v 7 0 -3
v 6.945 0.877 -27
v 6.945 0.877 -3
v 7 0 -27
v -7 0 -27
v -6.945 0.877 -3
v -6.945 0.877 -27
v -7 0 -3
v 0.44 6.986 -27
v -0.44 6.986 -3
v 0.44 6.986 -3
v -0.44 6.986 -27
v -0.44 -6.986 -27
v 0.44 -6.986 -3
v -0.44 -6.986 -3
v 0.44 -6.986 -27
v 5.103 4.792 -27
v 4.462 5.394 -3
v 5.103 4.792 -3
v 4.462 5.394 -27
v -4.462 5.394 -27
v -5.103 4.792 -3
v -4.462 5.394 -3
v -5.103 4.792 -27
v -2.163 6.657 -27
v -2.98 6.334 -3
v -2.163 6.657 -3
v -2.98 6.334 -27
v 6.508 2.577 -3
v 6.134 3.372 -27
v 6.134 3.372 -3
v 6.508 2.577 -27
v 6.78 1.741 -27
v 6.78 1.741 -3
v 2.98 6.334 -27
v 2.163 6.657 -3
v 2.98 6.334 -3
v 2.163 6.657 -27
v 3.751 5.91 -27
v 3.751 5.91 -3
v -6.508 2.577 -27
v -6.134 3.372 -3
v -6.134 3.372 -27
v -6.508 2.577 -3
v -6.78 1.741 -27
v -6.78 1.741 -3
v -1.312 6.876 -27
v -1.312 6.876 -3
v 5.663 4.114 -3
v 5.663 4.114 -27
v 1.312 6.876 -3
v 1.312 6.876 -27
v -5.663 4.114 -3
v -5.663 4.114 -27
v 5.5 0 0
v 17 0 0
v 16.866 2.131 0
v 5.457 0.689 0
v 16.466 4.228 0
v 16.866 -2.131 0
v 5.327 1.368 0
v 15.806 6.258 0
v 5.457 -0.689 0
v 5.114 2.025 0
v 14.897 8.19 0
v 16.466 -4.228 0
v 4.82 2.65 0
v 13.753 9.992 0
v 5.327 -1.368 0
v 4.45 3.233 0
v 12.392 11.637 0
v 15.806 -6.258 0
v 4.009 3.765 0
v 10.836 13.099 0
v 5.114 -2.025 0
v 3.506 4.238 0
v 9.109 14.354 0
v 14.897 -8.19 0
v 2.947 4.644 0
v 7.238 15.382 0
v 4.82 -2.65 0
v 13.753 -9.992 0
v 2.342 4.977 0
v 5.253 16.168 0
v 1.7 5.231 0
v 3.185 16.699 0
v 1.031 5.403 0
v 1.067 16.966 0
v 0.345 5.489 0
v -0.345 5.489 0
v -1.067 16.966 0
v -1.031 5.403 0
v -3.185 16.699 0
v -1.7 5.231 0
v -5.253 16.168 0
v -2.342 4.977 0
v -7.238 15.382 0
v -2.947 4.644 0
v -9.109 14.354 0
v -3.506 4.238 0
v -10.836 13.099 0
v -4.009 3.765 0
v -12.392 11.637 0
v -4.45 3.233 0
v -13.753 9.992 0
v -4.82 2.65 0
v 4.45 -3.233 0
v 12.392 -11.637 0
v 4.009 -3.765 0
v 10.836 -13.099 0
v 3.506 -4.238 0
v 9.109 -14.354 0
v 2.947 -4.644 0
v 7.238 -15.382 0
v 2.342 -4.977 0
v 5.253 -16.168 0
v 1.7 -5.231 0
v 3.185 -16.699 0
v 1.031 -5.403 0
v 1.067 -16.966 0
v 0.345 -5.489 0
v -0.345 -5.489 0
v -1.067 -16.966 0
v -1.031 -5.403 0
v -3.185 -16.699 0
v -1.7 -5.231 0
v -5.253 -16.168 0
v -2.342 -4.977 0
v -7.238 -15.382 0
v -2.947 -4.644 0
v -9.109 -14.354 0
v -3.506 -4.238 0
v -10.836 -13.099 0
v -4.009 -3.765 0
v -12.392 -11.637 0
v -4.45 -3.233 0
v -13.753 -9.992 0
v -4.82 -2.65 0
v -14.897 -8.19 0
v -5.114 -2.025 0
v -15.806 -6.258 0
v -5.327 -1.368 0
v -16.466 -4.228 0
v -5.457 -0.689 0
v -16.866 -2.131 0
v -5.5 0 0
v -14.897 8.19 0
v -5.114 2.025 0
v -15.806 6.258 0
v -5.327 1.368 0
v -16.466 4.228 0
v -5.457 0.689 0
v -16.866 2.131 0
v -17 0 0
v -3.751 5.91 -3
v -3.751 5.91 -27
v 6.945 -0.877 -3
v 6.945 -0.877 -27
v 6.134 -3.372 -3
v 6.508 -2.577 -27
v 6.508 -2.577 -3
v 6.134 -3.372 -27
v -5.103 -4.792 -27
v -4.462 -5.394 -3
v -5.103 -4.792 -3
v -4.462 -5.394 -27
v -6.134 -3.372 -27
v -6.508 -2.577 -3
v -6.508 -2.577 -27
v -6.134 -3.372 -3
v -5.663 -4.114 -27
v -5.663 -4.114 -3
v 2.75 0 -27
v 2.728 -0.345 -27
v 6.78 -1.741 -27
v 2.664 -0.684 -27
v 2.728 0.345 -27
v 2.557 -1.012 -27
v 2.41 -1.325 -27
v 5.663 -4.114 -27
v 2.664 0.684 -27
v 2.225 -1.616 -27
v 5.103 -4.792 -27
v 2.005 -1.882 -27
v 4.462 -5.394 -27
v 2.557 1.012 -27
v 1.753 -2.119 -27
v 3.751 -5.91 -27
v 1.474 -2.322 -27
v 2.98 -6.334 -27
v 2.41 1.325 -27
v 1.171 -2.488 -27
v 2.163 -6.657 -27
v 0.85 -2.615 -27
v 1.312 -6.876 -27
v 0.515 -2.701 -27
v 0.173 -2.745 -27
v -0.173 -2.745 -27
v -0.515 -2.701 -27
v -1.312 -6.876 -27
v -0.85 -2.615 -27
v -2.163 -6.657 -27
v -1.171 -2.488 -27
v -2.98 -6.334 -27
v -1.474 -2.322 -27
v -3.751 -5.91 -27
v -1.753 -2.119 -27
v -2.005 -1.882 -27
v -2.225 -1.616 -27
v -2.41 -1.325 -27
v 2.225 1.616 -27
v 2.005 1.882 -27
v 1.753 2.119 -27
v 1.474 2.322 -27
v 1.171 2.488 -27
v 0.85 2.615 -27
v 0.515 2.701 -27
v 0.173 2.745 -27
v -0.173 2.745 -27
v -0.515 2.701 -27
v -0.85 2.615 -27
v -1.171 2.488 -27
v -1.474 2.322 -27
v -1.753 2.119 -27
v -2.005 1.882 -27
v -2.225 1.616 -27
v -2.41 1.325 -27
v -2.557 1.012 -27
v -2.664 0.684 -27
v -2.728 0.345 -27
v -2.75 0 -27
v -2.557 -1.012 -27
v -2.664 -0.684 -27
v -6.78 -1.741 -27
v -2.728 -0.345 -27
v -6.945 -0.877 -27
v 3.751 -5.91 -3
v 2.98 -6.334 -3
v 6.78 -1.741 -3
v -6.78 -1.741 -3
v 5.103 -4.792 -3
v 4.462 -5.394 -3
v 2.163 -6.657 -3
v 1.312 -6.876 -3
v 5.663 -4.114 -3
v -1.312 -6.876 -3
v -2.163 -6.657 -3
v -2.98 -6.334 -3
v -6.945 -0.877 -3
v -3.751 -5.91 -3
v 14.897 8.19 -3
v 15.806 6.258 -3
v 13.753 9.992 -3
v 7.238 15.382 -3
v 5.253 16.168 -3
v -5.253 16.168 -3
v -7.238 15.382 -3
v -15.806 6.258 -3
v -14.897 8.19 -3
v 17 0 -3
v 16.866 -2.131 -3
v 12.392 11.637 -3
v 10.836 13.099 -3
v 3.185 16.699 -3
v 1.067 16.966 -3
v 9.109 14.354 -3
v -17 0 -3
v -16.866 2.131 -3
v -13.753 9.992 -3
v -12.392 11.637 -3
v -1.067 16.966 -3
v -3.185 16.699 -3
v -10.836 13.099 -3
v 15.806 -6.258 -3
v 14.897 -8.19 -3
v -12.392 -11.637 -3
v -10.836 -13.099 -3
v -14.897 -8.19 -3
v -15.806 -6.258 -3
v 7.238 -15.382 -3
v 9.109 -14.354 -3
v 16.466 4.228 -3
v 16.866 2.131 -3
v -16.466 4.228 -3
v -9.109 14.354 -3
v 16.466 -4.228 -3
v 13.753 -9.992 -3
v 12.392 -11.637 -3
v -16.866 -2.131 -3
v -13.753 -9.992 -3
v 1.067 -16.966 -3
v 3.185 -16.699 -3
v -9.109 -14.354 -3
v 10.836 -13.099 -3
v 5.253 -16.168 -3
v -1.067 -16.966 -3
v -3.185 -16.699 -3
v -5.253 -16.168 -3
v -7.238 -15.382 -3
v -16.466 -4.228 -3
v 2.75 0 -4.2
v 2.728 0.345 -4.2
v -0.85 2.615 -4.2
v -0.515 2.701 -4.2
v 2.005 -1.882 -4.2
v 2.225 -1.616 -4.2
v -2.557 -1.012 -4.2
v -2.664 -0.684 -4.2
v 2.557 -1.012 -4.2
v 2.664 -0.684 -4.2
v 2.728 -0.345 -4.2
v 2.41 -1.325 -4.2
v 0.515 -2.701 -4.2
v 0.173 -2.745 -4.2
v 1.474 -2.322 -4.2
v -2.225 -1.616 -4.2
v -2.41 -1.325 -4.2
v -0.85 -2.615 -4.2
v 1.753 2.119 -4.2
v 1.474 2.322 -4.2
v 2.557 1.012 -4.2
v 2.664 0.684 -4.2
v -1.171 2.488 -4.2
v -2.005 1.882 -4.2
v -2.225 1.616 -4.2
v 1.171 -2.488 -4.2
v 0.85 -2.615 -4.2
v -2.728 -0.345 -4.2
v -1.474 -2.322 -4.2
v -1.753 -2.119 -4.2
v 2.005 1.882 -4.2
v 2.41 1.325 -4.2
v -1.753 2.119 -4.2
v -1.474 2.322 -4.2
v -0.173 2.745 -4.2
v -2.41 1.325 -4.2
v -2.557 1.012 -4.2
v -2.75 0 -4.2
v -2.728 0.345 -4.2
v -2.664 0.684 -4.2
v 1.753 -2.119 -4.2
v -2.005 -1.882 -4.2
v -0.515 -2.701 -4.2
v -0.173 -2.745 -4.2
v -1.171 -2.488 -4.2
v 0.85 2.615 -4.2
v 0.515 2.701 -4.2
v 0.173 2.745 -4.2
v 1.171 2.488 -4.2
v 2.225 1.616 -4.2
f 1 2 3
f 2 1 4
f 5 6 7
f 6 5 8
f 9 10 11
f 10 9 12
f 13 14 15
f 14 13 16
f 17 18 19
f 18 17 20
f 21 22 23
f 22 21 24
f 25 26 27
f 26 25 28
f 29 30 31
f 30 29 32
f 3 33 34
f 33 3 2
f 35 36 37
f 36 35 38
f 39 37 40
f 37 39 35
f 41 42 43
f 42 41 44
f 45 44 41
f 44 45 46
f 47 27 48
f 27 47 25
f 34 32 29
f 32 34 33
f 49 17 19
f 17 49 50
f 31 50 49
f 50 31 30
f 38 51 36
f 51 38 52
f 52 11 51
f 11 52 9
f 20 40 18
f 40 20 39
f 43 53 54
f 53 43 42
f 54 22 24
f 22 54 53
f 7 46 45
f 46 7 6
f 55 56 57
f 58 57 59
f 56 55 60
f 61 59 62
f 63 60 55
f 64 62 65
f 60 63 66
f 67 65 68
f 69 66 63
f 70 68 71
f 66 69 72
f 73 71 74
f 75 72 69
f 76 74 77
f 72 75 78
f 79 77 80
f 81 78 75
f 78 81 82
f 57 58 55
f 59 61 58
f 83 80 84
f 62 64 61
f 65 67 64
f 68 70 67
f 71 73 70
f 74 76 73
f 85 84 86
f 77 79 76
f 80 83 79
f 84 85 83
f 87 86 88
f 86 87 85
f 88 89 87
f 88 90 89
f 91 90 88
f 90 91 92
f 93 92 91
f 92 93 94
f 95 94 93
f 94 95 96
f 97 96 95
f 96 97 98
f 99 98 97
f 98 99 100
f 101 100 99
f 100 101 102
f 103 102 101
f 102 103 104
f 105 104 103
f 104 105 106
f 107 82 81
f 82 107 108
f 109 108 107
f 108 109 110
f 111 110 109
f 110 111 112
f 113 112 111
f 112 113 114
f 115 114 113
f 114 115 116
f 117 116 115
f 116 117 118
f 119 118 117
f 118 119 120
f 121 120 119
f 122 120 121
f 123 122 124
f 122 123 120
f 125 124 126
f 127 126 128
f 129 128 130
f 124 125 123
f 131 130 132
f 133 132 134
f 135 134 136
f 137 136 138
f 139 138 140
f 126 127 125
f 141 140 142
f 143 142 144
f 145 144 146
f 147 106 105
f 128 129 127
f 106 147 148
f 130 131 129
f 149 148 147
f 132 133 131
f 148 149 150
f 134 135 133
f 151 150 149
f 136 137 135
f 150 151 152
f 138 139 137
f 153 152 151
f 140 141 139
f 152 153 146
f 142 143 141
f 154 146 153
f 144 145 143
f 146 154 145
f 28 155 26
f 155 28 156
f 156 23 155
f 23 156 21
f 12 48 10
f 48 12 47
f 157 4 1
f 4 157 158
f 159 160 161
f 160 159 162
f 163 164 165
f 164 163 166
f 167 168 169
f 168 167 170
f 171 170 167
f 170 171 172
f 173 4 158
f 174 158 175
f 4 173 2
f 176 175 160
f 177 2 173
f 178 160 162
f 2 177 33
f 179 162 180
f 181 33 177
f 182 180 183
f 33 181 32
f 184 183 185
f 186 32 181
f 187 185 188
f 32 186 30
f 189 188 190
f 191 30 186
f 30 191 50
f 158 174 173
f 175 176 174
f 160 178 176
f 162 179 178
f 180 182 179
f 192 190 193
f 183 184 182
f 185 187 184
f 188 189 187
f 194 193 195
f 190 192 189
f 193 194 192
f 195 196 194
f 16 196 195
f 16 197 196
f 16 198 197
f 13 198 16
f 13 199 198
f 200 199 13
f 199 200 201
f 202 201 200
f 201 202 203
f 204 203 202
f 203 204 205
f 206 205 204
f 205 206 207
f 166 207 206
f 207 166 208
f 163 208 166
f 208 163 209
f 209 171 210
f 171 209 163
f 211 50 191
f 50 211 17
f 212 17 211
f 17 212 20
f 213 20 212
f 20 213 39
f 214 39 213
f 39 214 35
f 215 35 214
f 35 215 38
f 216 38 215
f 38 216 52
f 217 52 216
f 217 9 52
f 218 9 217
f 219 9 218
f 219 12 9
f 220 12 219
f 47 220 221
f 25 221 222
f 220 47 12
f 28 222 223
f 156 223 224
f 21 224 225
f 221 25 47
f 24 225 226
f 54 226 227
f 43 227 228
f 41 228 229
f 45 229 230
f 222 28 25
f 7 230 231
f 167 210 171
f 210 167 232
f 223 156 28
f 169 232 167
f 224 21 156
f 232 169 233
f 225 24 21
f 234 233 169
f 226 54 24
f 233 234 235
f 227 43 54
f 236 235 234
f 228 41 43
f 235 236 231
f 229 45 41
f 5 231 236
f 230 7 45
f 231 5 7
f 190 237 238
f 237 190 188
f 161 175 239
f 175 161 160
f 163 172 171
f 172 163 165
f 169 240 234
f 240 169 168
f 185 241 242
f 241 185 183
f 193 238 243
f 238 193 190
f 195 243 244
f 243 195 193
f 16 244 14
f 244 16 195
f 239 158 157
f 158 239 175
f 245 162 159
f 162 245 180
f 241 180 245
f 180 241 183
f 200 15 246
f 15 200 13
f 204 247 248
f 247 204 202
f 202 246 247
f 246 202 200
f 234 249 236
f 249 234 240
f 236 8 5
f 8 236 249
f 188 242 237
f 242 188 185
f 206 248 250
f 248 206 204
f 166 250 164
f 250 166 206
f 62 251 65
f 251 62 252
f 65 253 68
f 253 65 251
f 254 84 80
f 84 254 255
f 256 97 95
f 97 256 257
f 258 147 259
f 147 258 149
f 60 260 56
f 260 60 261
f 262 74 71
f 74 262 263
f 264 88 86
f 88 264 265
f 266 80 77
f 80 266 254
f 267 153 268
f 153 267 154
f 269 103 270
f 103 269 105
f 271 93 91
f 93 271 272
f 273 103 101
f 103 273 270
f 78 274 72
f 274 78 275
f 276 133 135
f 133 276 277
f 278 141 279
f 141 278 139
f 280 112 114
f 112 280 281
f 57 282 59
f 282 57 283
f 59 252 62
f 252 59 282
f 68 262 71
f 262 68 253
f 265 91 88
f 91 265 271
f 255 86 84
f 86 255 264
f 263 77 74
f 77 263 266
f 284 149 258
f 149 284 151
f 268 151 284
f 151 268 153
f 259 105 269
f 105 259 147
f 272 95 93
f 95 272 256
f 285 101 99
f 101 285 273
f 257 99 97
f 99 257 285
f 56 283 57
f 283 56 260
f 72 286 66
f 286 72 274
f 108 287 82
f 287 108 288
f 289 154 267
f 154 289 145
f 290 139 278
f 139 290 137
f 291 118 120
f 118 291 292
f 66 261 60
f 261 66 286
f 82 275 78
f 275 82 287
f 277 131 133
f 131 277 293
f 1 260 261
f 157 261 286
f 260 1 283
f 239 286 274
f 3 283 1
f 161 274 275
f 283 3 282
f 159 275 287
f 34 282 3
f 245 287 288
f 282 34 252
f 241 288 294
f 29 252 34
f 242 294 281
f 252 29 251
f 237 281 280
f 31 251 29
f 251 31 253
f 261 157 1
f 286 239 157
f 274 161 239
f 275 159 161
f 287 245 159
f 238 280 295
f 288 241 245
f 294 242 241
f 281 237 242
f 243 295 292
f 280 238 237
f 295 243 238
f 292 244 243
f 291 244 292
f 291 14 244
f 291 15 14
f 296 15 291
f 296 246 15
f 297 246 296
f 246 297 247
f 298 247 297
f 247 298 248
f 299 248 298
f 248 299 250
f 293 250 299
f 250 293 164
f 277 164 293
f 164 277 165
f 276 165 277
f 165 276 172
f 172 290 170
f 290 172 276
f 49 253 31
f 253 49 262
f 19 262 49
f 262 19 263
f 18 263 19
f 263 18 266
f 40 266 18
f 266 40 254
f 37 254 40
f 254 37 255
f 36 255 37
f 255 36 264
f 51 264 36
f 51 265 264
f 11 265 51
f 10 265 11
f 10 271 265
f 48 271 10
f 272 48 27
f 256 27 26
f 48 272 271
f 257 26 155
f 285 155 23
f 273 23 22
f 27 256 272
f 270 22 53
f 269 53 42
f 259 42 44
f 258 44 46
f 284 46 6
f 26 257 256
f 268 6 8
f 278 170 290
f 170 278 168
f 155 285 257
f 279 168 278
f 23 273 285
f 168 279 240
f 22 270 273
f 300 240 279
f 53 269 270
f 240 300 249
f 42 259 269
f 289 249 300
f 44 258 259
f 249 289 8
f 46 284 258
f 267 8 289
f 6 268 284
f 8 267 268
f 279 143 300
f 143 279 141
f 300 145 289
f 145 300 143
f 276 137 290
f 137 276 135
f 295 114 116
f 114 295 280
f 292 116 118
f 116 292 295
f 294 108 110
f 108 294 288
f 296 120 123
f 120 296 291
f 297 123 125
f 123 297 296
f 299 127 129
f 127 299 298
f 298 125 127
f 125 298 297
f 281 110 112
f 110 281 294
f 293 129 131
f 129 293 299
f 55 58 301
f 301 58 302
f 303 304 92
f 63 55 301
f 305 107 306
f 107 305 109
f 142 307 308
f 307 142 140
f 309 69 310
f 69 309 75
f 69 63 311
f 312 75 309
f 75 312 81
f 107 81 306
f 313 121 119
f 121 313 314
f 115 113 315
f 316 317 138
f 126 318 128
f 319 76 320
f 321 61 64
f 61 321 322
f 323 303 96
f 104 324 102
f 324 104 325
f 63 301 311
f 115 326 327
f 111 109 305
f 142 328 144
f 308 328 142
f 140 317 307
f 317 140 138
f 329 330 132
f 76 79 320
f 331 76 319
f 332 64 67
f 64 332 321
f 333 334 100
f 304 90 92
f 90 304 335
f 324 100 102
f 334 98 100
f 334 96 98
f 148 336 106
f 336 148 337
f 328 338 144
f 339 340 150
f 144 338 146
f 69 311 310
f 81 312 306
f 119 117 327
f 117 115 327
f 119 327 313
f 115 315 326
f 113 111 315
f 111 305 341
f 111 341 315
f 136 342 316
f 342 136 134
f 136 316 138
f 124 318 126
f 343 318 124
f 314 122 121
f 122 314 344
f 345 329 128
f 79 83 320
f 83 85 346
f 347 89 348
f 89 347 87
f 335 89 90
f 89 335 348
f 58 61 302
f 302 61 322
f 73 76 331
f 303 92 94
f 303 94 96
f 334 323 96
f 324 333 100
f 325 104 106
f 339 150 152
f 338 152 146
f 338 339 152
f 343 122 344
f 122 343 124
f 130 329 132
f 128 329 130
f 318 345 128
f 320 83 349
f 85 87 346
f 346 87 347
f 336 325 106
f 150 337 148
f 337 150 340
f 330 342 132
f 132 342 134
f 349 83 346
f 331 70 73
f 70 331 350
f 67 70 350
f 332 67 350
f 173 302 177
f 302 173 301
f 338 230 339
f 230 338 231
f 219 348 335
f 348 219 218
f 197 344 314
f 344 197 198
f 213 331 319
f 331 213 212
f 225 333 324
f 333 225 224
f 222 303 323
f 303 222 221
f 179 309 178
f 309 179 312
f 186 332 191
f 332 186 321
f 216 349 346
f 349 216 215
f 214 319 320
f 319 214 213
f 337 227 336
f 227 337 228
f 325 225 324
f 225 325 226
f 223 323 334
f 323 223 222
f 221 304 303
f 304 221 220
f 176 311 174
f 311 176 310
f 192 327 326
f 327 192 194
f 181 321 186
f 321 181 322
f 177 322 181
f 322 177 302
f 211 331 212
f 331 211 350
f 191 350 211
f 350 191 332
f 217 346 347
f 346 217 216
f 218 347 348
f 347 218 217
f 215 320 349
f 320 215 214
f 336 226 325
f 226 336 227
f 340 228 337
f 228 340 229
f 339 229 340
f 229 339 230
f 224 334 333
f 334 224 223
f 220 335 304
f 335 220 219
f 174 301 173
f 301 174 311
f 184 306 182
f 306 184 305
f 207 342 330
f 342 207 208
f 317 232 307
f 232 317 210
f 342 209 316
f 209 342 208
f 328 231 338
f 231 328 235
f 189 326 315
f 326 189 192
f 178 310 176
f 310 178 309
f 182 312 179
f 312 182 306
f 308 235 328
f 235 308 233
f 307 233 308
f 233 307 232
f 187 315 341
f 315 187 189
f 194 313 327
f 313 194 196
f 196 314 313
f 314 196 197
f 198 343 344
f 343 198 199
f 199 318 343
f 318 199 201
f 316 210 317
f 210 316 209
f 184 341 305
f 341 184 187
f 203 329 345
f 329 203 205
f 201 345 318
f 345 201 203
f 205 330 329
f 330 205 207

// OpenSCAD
$fn = 50;


difference() {
	union() {
		translate(v = [0, 0, -27.0000000000]) {
			cylinder(h = 27, r = 7.0000000000);
		}
		translate(v = [0, 0, -3.0000000000]) {
			cylinder(h = 3, r = 17.0000000000);
		}
	}
	union() {
		translate(v = [0, 0, 0]) {
			rotate(a = [0, 0, 0]) {
				difference() {
					union() {
						#translate(v = [0, 0, -27.0000000000]) {
							cylinder(h = 27, r = 2.2500000000);
						}
						#translate(v = [0, 0, -4.2000000000]) {
							cylinder(h = 4.2000000000, r = 7.0000000000, r1 = 2.7500000000, r2 = 5.5000000000);
						}
						#translate(v = [0, 0, -27.0000000000]) {
							cylinder(h = 27, r = 2.7500000000);
						}
						#translate(v = [0, 0, -27.0000000000]) {
							cylinder(h = 27, r = 2.2500000000);
						}
					}
					union();
				}
			}
		}
	}
}
